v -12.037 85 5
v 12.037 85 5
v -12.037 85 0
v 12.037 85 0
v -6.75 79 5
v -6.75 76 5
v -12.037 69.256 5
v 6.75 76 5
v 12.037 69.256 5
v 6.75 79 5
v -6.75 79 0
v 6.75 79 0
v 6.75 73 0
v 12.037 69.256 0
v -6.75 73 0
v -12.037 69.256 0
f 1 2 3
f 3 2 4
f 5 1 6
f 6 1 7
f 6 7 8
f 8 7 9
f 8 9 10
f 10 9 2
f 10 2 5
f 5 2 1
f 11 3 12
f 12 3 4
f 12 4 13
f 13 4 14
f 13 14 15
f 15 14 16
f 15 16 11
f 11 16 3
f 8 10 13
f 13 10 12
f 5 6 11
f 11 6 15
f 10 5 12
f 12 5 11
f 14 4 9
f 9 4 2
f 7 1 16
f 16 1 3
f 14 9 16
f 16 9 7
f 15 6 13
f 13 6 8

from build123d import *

# Parameters (mm, degrees)
SKIZZE1_W                                 = 110
SKIZZE1_H                                 = 170
AUFSATZ_LINEAR_AUSTRAGEN1_DEPTH           = 5
VERRUNDUNG1_R                             = 5
SCHNITT_LINEAR_AUSTRAGEN1_DEPTH           = 102.365674664
SKIZZE2_R                                 = 27
SCHNITT_LINEAR_AUSTRAGEN2_DEPTH           = 3
FASE1_SIZE                                = 3
SKIZZE4_R                                 = 4
AUFSATZ_LINEAR_AUSTRAGEN2_DEPTH           = 69
FASE2_SIZE                                = 1
LINEARES_MUSTER1_COUNT                    = 2
LINEARES_MUSTER1_PITCH                    = 134
LINEARES_MUSTER1_COUNT_DIR2               = 2
LINEARES_MUSTER1_PITCH_DIR2               = 98
FASE2_OF_LINEARES_MUSTER1_SIZE            = 1
VERRUNDUNG2_R                             = 1
GEWINDE1_PITCH                            = 1
GEWINDE2_PITCH                            = 1
GEWINDE3_PITCH                            = 1
GEWINDE4_PITCH                            = 1
SKIZZE10_W                                = 120
SKIZZE10_H                                = 150
SCHNITT_LINEAR_AUSTRAGEN4_DEPTH           = 2
SKIZZE12_R                                = 2
SCHNITT_LINEAR_AUSTRAGEN5_DEPTH           = 4.5
SKIZZE13_W                                = 11
SKIZZE13_H                                = 3
SKIZZE13_W_2                              = 3
SKIZZE13_H_2                              = 11
SKIZZE13_W_3                              = 13.5
SCHNITT_LINEAR_AUSTRAGEN6_DEPTH           = 125.233650894
SKIZZE14_R                                = 3
AUFSATZ_LINEAR_AUSTRAGEN3_DEPTH           = 4
SKIZZE15_R                                = 0.95
AUFSATZ_LINEAR_AUSTRAGEN4_DEPTH           = 4
AUFSATZ_LINEAR_AUSTRAGEN4_DRAFT           = 2
AUFSATZ_LINEAR_AUSTRAGEN4_PROFILE_2_DEPTH = 4
AUFSATZ_LINEAR_AUSTRAGEN4_PROFILE_2_DRAFT = 2
SKIZZE16_W                                = 123.691442011
SKIZZE16_H                                = 148.84203522
SCHNITT_LINEAR_AUSTRAGEN7_DEPTH           = 125.233650894
SKIZZE17_W                                = 11
SKIZZE17_H                                = 3
SCHNITT_LINEAR_AUSTRAGEN8_DEPTH           = 125.233650894
SCHNITT_LINEAR_AUSTRAGEN9_DEPTH           = 125.233650894
SCHNITT_LINEAR_AUSTRAGEN10_DEPTH          = 92.167499001
SCHNITT_LINEAR_AUSTRAGEN10_DEPTH_BACK     = 92.167499001
FASE3_SIZE2                               = 5
FASE3_SIZE                                = 3


with BuildPart() as part:
    # Skizze1 → Aufsatz-Linear austragen1 (new body)
    with BuildSketch(Plane.XY):
        Rectangle(SKIZZE1_W, SKIZZE1_H)
    extrude(amount=AUFSATZ_LINEAR_AUSTRAGEN1_DEPTH)

    # Verrundung1
    verrundung1_edges = [part.edges().sort_by_distance(p)[0] for p in [
        (55, -85, 2.5),
        (-55, -85, 2.5),
        (-55, 85, 2.5),
        (55, 85, 2.5),
    ]]
    fillet(verrundung1_edges, radius=VERRUNDUNG1_R)

    # Skizze3 → Schnitt-Linear austragen1 (cut, through all)
    with BuildSketch(Plane.XY.offset(5)):
        with BuildLine():
            Line((-35, 35), (-35, 17))
            ThreePointArc((-35, 17), (-27.513632984, 27.513632984), (-17, 35))
            Line((-17, 35), (-35, 35))
        make_face()
        with BuildLine():
            Line((35, 35), (17, 35))
            ThreePointArc((17, 35), (27.513632984, 27.513632984), (35, 17))
            Line((35, 17), (35, 35))
        make_face()
        with BuildLine():
            Line((35, -35), (35, -17))
            ThreePointArc((35, -17), (27.513632984, -27.513632984), (17, -35))
            Line((17, -35), (35, -35))
        make_face()
        with BuildLine():
            Line((-35, -35), (-17, -35))
            ThreePointArc((-17, -35), (-27.513632984, -27.513632984), (-35, -17))
            Line((-35, -17), (-35, -35))
        make_face()
    extrude(amount=-SCHNITT_LINEAR_AUSTRAGEN1_DEPTH, mode=Mode.SUBTRACT)

    # Skizze2 → Schnitt-Linear austragen2 (cut)
    with BuildSketch(Plane.XY.offset(5)):
        Circle(SKIZZE2_R)
    extrude(amount=-SCHNITT_LINEAR_AUSTRAGEN2_DEPTH, mode=Mode.SUBTRACT)

    # Fase1
    fase1_edges = [part.edges().sort_by_distance(p)[0] for p in [
        (-27, 0, 5),
    ]]
    chamfer(fase1_edges, length=FASE1_SIZE - 0.0001)  # a hair under: the kernel refuses the full size

    # Skizze4 → Aufsatz-Linear austragen2 (add)
    with BuildSketch(Plane(origin=(0, 0, 0), x_dir=(-1, 0, 0), z_dir=(0, 0, -1))):
        with Locations((-49, 67)):
            Circle(SKIZZE4_R)
    aufsatz_linear_austragen2 = extrude(amount=AUFSATZ_LINEAR_AUSTRAGEN2_DEPTH)

    # Fase2
    fase2_edges = [part.edges().sort_by_distance(p)[0] for p in [
        (53, 67, 0),
    ]]
    chamfer(fase2_edges, length=FASE2_SIZE)

    # Lineares Muster1: Aufsatz-Linear austragen2 2 × 2
    with Locations(*[(-j * LINEARES_MUSTER1_PITCH_DIR2, -i * LINEARES_MUSTER1_PITCH, 0) for i in range(LINEARES_MUSTER1_COUNT) for j in range(LINEARES_MUSTER1_COUNT_DIR2) if (i, j) != (0, 0)]):
        add(aufsatz_linear_austragen2)

    # Fase2 of Lineares Muster1
    fase2_of_lineares_muster1_edges = [part.edges().sort_by_distance(p)[0] for p in [
        (-45, 67, 0),
        (53, -67, 0),
        (-45, -67, 0),
    ]]
    chamfer(fase2_of_lineares_muster1_edges, length=FASE2_OF_LINEARES_MUSTER1_SIZE)

    # Verrundung2
    verrundung2_edges = [part.edges().sort_by_distance(p)[0] for p in [
        (-35, -35, 2.5),
        (-35, -17, 2.5),
        (-17, -35, 2.5),
        (35, -35, 2.5),
        (17, -35, 2.5),
        (35, -17, 2.5),
        (35, 35, 2.5),
        (35, 17, 2.5),
        (17, 35, 2.5),
        (-35, 35, 2.5),
        (-17, 35, 2.5),
        (-35, 17, 2.5),
    ]]
    fillet(verrundung2_edges, radius=VERRUNDUNG2_R)

    # Gewinde1: the profile of Gewindeprofil1 profile screwed along a right-hand helix of 12 turns, 8 arcs to a turn; built about Z, then put on its axis
    gewinde1_z = Axis((0, 0, 0), (0, 0, 1))
    gewinde1_corners = [(4.0003, 0, -0.000173205), (4.0003, 0, 0.875173202), (3.458734125, 0, 0.562499999), (3.458734125, 0, 0.312499999)]
    with BuildLine(mode=Mode.PRIVATE) as gewinde1_profile:
        Line(gewinde1_corners[0], gewinde1_corners[1])
        Line(gewinde1_corners[1], gewinde1_corners[2])
        Line(gewinde1_corners[2], gewinde1_corners[3])
        Line(gewinde1_corners[3], gewinde1_corners[0])
    gewinde1_cap = Face(gewinde1_profile.wire())
    gewinde1_turn_angles = [0, 22.5, 45, 67.5, 90, 112.5, 135, 157.5, 180, 202.5, 225, 247.5, 270, 292.5, 315, 337.5, 360]
    gewinde1_turn_weights = [1, 0.9238795325112867, 1, 0.9238795325112867, 1, 0.9238795325112867, 1, 0.9238795325112867, 1, 0.9238795325112867, 1, 0.9238795325112867, 1, 0.9238795325112867, 1, 0.9238795325112867, 1]
    gewinde1_turn_rails = [Edge.make_bspline([Vector(p[0], p[1], 0).rotate(gewinde1_z, gewinde1_turn_angles[k]) / gewinde1_turn_weights[k] + Vector(0, 0, p[2] + GEWINDE1_PITCH * gewinde1_turn_angles[k] / 360) for k in range(17)], [0, 0, 0, 1, 1, 2, 2, 3, 3, 4, 4, 5, 5, 6, 6, 7, 7, 8, 8, 8], 2, gewinde1_turn_weights) for p in gewinde1_corners]
    gewinde1_turn_sides = [Face.make_surface_from_curves(gewinde1_turn_rails[p[0]], gewinde1_turn_rails[p[1]]) for p in [(0, 1), (1, 2), (2, 3), (3, 0)]]
    gewinde1 = Plane(origin=(49, 67, -69), x_dir=(1, 0, 0), z_dir=(0, 0, 1)) * Solid(Shell([*[p.moved(Location((0, 0, GEWINDE1_PITCH * i))) for i in range(12) for p in gewinde1_turn_sides], gewinde1_cap, gewinde1_cap.rotate(gewinde1_z, 4320).moved(Location((0, 0, GEWINDE1_PITCH * 4320 / 360)))]))
    add(gewinde1, mode=Mode.SUBTRACT)

    # Gewinde2: the profile of Gewindeprofil2 profile screwed along a right-hand helix of 12 turns, 8 arcs to a turn; built about Z, then put on its axis
    gewinde2_z = Axis((0, 0, 0), (0, 0, 1))
    gewinde2_corners = [(4.0003, 0, -0.000173205), (4.0003, 0, 0.875173202), (3.458734125, 0, 0.562499999), (3.458734125, 0, 0.312499999)]
    with BuildLine(mode=Mode.PRIVATE) as gewinde2_profile:
        Line(gewinde2_corners[0], gewinde2_corners[1])
        Line(gewinde2_corners[1], gewinde2_corners[2])
        Line(gewinde2_corners[2], gewinde2_corners[3])
        Line(gewinde2_corners[3], gewinde2_corners[0])
    gewinde2_cap = Face(gewinde2_profile.wire())
    gewinde2_turn_angles = [0, 22.5, 45, 67.5, 90, 112.5, 135, 157.5, 180, 202.5, 225, 247.5, 270, 292.5, 315, 337.5, 360]
    gewinde2_turn_weights = [1, 0.9238795325112867, 1, 0.9238795325112867, 1, 0.9238795325112867, 1, 0.9238795325112867, 1, 0.9238795325112867, 1, 0.9238795325112867, 1, 0.9238795325112867, 1, 0.9238795325112867, 1]
    gewinde2_turn_rails = [Edge.make_bspline([Vector(p[0], p[1], 0).rotate(gewinde2_z, gewinde2_turn_angles[k]) / gewinde2_turn_weights[k] + Vector(0, 0, p[2] + GEWINDE2_PITCH * gewinde2_turn_angles[k] / 360) for k in range(17)], [0, 0, 0, 1, 1, 2, 2, 3, 3, 4, 4, 5, 5, 6, 6, 7, 7, 8, 8, 8], 2, gewinde2_turn_weights) for p in gewinde2_corners]
    gewinde2_turn_sides = [Face.make_surface_from_curves(gewinde2_turn_rails[p[0]], gewinde2_turn_rails[p[1]]) for p in [(0, 1), (1, 2), (2, 3), (3, 0)]]
    gewinde2 = Plane(origin=(49, -67, -69), x_dir=(1, 0, 0), z_dir=(0, 0, 1)) * Solid(Shell([*[p.moved(Location((0, 0, GEWINDE2_PITCH * i))) for i in range(12) for p in gewinde2_turn_sides], gewinde2_cap, gewinde2_cap.rotate(gewinde2_z, 4320).moved(Location((0, 0, GEWINDE2_PITCH * 4320 / 360)))]))
    add(gewinde2, mode=Mode.SUBTRACT)

    # Gewinde3: the profile of Gewindeprofil3 profile screwed along a right-hand helix of 12 turns, 8 arcs to a turn; built about Z, then put on its axis
    gewinde3_z = Axis((0, 0, 0), (0, 0, 1))
    gewinde3_corners = [(4.0003, 0, -0.000173205), (4.0003, 0, 0.875173202), (3.458734125, 0, 0.562499999), (3.458734125, 0, 0.312499999)]
    with BuildLine(mode=Mode.PRIVATE) as gewinde3_profile:
        Line(gewinde3_corners[0], gewinde3_corners[1])
        Line(gewinde3_corners[1], gewinde3_corners[2])
        Line(gewinde3_corners[2], gewinde3_corners[3])
        Line(gewinde3_corners[3], gewinde3_corners[0])
    gewinde3_cap = Face(gewinde3_profile.wire())
    gewinde3_turn_angles = [0, 22.5, 45, 67.5, 90, 112.5, 135, 157.5, 180, 202.5, 225, 247.5, 270, 292.5, 315, 337.5, 360]
    gewinde3_turn_weights = [1, 0.9238795325112867, 1, 0.9238795325112867, 1, 0.9238795325112867, 1, 0.9238795325112867, 1, 0.9238795325112867, 1, 0.9238795325112867, 1, 0.9238795325112867, 1, 0.9238795325112867, 1]
    gewinde3_turn_rails = [Edge.make_bspline([Vector(p[0], p[1], 0).rotate(gewinde3_z, gewinde3_turn_angles[k]) / gewinde3_turn_weights[k] + Vector(0, 0, p[2] + GEWINDE3_PITCH * gewinde3_turn_angles[k] / 360) for k in range(17)], [0, 0, 0, 1, 1, 2, 2, 3, 3, 4, 4, 5, 5, 6, 6, 7, 7, 8, 8, 8], 2, gewinde3_turn_weights) for p in gewinde3_corners]
    gewinde3_turn_sides = [Face.make_surface_from_curves(gewinde3_turn_rails[p[0]], gewinde3_turn_rails[p[1]]) for p in [(0, 1), (1, 2), (2, 3), (3, 0)]]
    gewinde3 = Plane(origin=(-49, -67, -69), x_dir=(1, 0, 0), z_dir=(0, 0, 1)) * Solid(Shell([*[p.moved(Location((0, 0, GEWINDE3_PITCH * i))) for i in range(12) for p in gewinde3_turn_sides], gewinde3_cap, gewinde3_cap.rotate(gewinde3_z, 4320).moved(Location((0, 0, GEWINDE3_PITCH * 4320 / 360)))]))
    add(gewinde3, mode=Mode.SUBTRACT)

    # Gewinde4: the profile of Gewindeprofil4 profile screwed along a right-hand helix of 12 turns, 8 arcs to a turn; built about Z, then put on its axis
    gewinde4_z = Axis((0, 0, 0), (0, 0, 1))
    gewinde4_corners = [(4.0003, 0, -0.000173205), (4.0003, 0, 0.875173202), (3.458734125, 0, 0.562499999), (3.458734125, 0, 0.312499999)]
    with BuildLine(mode=Mode.PRIVATE) as gewinde4_profile:
        Line(gewinde4_corners[0], gewinde4_corners[1])
        Line(gewinde4_corners[1], gewinde4_corners[2])
        Line(gewinde4_corners[2], gewinde4_corners[3])
        Line(gewinde4_corners[3], gewinde4_corners[0])
    gewinde4_cap = Face(gewinde4_profile.wire())
    gewinde4_turn_angles = [0, 22.5, 45, 67.5, 90, 112.5, 135, 157.5, 180, 202.5, 225, 247.5, 270, 292.5, 315, 337.5, 360]
    gewinde4_turn_weights = [1, 0.9238795325112867, 1, 0.9238795325112867, 1, 0.9238795325112867, 1, 0.9238795325112867, 1, 0.9238795325112867, 1, 0.9238795325112867, 1, 0.9238795325112867, 1, 0.9238795325112867, 1]
    gewinde4_turn_rails = [Edge.make_bspline([Vector(p[0], p[1], 0).rotate(gewinde4_z, gewinde4_turn_angles[k]) / gewinde4_turn_weights[k] + Vector(0, 0, p[2] + GEWINDE4_PITCH * gewinde4_turn_angles[k] / 360) for k in range(17)], [0, 0, 0, 1, 1, 2, 2, 3, 3, 4, 4, 5, 5, 6, 6, 7, 7, 8, 8, 8], 2, gewinde4_turn_weights) for p in gewinde4_corners]
    gewinde4_turn_sides = [Face.make_surface_from_curves(gewinde4_turn_rails[p[0]], gewinde4_turn_rails[p[1]]) for p in [(0, 1), (1, 2), (2, 3), (3, 0)]]
    gewinde4 = Plane(origin=(-49, 67, -69), x_dir=(1, 0, 0), z_dir=(0, 0, 1)) * Solid(Shell([*[p.moved(Location((0, 0, GEWINDE4_PITCH * i))) for i in range(12) for p in gewinde4_turn_sides], gewinde4_cap, gewinde4_cap.rotate(gewinde4_z, 4320).moved(Location((0, 0, GEWINDE4_PITCH * 4320 / 360)))]))
    add(gewinde4, mode=Mode.SUBTRACT)

    # Skizze10 → Schnitt-Linear austragen4 (cut)
    with BuildSketch(Plane(origin=(0, 0, -69), x_dir=(-1, 0, 0), z_dir=(0, 0, -1))):
        Rectangle(SKIZZE10_W, SKIZZE10_H)
    extrude(amount=-SCHNITT_LINEAR_AUSTRAGEN4_DEPTH, mode=Mode.SUBTRACT)

    # Skizze12 → Schnitt-Linear austragen5 (cut)
    with BuildSketch(Plane(origin=(0, 0, 0), x_dir=(-1, 0, 0), z_dir=(0, 0, -1))):
        with Locations((49, 59.5)):
            Circle(SKIZZE12_R)
        with Locations(Location((-49, 59.5, 0), (0, 0, 180))):
            Circle(SKIZZE12_R)
        with Locations((-49, -59.5)):
            Circle(SKIZZE12_R)
        with Locations(Location((49, -59.5, 0), (0, 0, 180))):
            Circle(SKIZZE12_R)
    extrude(amount=-SCHNITT_LINEAR_AUSTRAGEN5_DEPTH, mode=Mode.SUBTRACT)

    # Skizze13 → Schnitt-Linear austragen6 (cut, through all)
    with BuildSketch(Plane.XY.offset(5)):
        with Locations((0, -75.5)):
            Rectangle(SKIZZE13_W, SKIZZE13_H)
        with Locations((45.5, 0)):
            Rectangle(SKIZZE13_W_2, SKIZZE13_H_2)
        with Locations((-45.5, 0)):
            Rectangle(SKIZZE13_W_2, SKIZZE13_H_2)
        with Locations((0, 77.5)):
            Rectangle(SKIZZE13_W_3, SKIZZE13_H)
    extrude(amount=-SCHNITT_LINEAR_AUSTRAGEN6_DEPTH, mode=Mode.SUBTRACT)

    # Skizze14 → Aufsatz-Linear austragen3 (add)
    with BuildSketch(Plane.XY.offset(5)):
        with Locations(Location((6, 65, 0), (0, 0, 180))):
            Circle(SKIZZE14_R)
        with Locations(Location((-6, 65, 0), (0, 0, 180))):
            Circle(SKIZZE14_R)
    extrude(amount=AUFSATZ_LINEAR_AUSTRAGEN3_DEPTH)


with BuildPart() as aufsatz_linear_austragen4_tool:
    # Skizze15 → Aufsatz-Linear austragen4 (with draft: the straight prism first)
    with BuildSketch(Plane.XY.offset(9)):
        with Locations((-6, 65)):
            Circle(SKIZZE15_R)
    extrude(amount=AUFSATZ_LINEAR_AUSTRAGEN4_DEPTH)
    # Aufsatz-Linear austragen4: the draft: its side faces are tilted about the plane it starts from
    aufsatz_linear_austragen4_sides = [aufsatz_linear_austragen4_tool.faces().sort_by_distance(p)[0] for p in [
        (-6.95, 65, 11),
    ]]
    draft(aufsatz_linear_austragen4_sides, Plane.XY.offset(9), AUFSATZ_LINEAR_AUSTRAGEN4_DRAFT)


with BuildPart() as part_1:
    add(part.part)

    # Aufsatz-Linear austragen4: add aufsatz_linear_austragen4_tool
    add(aufsatz_linear_austragen4_tool.part)


with BuildPart() as aufsatz_linear_austragen4_profile_2_tool:
    # Skizze15 → Aufsatz-Linear austragen4 profile 2 (with draft: the straight prism first)
    with BuildSketch(Plane.XY.offset(9)):
        with Locations((6, 65)):
            Circle(SKIZZE15_R)
    extrude(amount=AUFSATZ_LINEAR_AUSTRAGEN4_PROFILE_2_DEPTH)
    # Aufsatz-Linear austragen4 profile 2: the draft: its side faces are tilted about the plane it starts from
    aufsatz_linear_austragen4_profile_2_sides = [aufsatz_linear_austragen4_profile_2_tool.faces().sort_by_distance(p)[0] for p in [
        (5.05, 65, 11),
    ]]
    draft(aufsatz_linear_austragen4_profile_2_sides, Plane.XY.offset(9), AUFSATZ_LINEAR_AUSTRAGEN4_PROFILE_2_DRAFT)


with BuildPart() as part_2:
    add(part_1.part)

    # Aufsatz-Linear austragen4 profile 2: add aufsatz_linear_austragen4_profile_2_tool
    add(aufsatz_linear_austragen4_profile_2_tool.part)

    # Skizze16 → Schnitt-Linear austragen7 (cut, through all)
    with BuildSketch(Plane.XY.offset(5)):
        with Locations((1.053547931, -15.254497888)):
            Rectangle(SKIZZE16_W, SKIZZE16_H)
    extrude(amount=-SCHNITT_LINEAR_AUSTRAGEN7_DEPTH, mode=Mode.SUBTRACT)

    # Skizze17 → Schnitt-Linear austragen8 (cut, through all)
    with BuildSketch(Plane.XY.offset(5)):
        with Locations((-25, 77.5)):
            Rectangle(SKIZZE17_W, SKIZZE17_H)
        with Locations((25, 77.5)):
            Rectangle(SKIZZE17_W, SKIZZE17_H)
    extrude(amount=-SCHNITT_LINEAR_AUSTRAGEN8_DEPTH, mode=Mode.SUBTRACT)

    # Skizze18 → Schnitt-Linear austragen9 (cut, through all)
    with BuildSketch(Plane.XY.offset(5)):
        Polygon((-56.129703441, 86.036343512), (-31.976755215, 86.036343512), (-31.976755215, 69.255661459), (-12.036530516, 69.255661459), (-12.036530516, 52.474979407), (-31.976755215, 52.474979407), (-56.129703441, 52.474979407), align=None)
        Polygon((56.129703441, 86.036343512), (56.129703441, 52.474979407), (31.976755215, 52.474979407), (12.036530516, 52.474979407), (12.036530516, 69.255661459), (31.976755215, 69.255661459), (31.976755215, 86.036343512), align=None)
    extrude(amount=-SCHNITT_LINEAR_AUSTRAGEN9_DEPTH, mode=Mode.SUBTRACT)

    # Skizze19 → Schnitt-Linear austragen10 (cut, two sides: drawn at the far end of the back side and taken through both)
    with BuildSketch(Plane.XY.offset(5).offset(-SCHNITT_LINEAR_AUSTRAGEN10_DEPTH_BACK)):
        Polygon((-36.863489822, 88.674968535), (-12.036530516, 88.674968535), (-12.036530516, 69.255661459), (12.036530516, 69.255661459), (12.036530516, 91.604966771), (35.434216654, 91.604966771), (35.434216654, 59.166519722), (12.036530516, 59.166519722), (-12.036530516, 59.166519722), (-36.863489822, 59.166519722), align=None)
    extrude(amount=SCHNITT_LINEAR_AUSTRAGEN10_DEPTH + SCHNITT_LINEAR_AUSTRAGEN10_DEPTH_BACK, mode=Mode.SUBTRACT)

    # Fase3
    fase3_edges = [part_2.edges().sort_by_distance(p)[0] for p in [
        (0, 76, 0),
    ]]
    fase3_side = [part_2.faces().sort_by_distance(p)[0] for p in [
        (0, 75.94, 0),
    ]]
    chamfer(fase3_edges, length=FASE3_SIZE - 0.0001, length2=FASE3_SIZE2 - 0.0001, reference=fase3_side[0])  # a hair under: the kernel refuses the full size


solid = part_2.part
